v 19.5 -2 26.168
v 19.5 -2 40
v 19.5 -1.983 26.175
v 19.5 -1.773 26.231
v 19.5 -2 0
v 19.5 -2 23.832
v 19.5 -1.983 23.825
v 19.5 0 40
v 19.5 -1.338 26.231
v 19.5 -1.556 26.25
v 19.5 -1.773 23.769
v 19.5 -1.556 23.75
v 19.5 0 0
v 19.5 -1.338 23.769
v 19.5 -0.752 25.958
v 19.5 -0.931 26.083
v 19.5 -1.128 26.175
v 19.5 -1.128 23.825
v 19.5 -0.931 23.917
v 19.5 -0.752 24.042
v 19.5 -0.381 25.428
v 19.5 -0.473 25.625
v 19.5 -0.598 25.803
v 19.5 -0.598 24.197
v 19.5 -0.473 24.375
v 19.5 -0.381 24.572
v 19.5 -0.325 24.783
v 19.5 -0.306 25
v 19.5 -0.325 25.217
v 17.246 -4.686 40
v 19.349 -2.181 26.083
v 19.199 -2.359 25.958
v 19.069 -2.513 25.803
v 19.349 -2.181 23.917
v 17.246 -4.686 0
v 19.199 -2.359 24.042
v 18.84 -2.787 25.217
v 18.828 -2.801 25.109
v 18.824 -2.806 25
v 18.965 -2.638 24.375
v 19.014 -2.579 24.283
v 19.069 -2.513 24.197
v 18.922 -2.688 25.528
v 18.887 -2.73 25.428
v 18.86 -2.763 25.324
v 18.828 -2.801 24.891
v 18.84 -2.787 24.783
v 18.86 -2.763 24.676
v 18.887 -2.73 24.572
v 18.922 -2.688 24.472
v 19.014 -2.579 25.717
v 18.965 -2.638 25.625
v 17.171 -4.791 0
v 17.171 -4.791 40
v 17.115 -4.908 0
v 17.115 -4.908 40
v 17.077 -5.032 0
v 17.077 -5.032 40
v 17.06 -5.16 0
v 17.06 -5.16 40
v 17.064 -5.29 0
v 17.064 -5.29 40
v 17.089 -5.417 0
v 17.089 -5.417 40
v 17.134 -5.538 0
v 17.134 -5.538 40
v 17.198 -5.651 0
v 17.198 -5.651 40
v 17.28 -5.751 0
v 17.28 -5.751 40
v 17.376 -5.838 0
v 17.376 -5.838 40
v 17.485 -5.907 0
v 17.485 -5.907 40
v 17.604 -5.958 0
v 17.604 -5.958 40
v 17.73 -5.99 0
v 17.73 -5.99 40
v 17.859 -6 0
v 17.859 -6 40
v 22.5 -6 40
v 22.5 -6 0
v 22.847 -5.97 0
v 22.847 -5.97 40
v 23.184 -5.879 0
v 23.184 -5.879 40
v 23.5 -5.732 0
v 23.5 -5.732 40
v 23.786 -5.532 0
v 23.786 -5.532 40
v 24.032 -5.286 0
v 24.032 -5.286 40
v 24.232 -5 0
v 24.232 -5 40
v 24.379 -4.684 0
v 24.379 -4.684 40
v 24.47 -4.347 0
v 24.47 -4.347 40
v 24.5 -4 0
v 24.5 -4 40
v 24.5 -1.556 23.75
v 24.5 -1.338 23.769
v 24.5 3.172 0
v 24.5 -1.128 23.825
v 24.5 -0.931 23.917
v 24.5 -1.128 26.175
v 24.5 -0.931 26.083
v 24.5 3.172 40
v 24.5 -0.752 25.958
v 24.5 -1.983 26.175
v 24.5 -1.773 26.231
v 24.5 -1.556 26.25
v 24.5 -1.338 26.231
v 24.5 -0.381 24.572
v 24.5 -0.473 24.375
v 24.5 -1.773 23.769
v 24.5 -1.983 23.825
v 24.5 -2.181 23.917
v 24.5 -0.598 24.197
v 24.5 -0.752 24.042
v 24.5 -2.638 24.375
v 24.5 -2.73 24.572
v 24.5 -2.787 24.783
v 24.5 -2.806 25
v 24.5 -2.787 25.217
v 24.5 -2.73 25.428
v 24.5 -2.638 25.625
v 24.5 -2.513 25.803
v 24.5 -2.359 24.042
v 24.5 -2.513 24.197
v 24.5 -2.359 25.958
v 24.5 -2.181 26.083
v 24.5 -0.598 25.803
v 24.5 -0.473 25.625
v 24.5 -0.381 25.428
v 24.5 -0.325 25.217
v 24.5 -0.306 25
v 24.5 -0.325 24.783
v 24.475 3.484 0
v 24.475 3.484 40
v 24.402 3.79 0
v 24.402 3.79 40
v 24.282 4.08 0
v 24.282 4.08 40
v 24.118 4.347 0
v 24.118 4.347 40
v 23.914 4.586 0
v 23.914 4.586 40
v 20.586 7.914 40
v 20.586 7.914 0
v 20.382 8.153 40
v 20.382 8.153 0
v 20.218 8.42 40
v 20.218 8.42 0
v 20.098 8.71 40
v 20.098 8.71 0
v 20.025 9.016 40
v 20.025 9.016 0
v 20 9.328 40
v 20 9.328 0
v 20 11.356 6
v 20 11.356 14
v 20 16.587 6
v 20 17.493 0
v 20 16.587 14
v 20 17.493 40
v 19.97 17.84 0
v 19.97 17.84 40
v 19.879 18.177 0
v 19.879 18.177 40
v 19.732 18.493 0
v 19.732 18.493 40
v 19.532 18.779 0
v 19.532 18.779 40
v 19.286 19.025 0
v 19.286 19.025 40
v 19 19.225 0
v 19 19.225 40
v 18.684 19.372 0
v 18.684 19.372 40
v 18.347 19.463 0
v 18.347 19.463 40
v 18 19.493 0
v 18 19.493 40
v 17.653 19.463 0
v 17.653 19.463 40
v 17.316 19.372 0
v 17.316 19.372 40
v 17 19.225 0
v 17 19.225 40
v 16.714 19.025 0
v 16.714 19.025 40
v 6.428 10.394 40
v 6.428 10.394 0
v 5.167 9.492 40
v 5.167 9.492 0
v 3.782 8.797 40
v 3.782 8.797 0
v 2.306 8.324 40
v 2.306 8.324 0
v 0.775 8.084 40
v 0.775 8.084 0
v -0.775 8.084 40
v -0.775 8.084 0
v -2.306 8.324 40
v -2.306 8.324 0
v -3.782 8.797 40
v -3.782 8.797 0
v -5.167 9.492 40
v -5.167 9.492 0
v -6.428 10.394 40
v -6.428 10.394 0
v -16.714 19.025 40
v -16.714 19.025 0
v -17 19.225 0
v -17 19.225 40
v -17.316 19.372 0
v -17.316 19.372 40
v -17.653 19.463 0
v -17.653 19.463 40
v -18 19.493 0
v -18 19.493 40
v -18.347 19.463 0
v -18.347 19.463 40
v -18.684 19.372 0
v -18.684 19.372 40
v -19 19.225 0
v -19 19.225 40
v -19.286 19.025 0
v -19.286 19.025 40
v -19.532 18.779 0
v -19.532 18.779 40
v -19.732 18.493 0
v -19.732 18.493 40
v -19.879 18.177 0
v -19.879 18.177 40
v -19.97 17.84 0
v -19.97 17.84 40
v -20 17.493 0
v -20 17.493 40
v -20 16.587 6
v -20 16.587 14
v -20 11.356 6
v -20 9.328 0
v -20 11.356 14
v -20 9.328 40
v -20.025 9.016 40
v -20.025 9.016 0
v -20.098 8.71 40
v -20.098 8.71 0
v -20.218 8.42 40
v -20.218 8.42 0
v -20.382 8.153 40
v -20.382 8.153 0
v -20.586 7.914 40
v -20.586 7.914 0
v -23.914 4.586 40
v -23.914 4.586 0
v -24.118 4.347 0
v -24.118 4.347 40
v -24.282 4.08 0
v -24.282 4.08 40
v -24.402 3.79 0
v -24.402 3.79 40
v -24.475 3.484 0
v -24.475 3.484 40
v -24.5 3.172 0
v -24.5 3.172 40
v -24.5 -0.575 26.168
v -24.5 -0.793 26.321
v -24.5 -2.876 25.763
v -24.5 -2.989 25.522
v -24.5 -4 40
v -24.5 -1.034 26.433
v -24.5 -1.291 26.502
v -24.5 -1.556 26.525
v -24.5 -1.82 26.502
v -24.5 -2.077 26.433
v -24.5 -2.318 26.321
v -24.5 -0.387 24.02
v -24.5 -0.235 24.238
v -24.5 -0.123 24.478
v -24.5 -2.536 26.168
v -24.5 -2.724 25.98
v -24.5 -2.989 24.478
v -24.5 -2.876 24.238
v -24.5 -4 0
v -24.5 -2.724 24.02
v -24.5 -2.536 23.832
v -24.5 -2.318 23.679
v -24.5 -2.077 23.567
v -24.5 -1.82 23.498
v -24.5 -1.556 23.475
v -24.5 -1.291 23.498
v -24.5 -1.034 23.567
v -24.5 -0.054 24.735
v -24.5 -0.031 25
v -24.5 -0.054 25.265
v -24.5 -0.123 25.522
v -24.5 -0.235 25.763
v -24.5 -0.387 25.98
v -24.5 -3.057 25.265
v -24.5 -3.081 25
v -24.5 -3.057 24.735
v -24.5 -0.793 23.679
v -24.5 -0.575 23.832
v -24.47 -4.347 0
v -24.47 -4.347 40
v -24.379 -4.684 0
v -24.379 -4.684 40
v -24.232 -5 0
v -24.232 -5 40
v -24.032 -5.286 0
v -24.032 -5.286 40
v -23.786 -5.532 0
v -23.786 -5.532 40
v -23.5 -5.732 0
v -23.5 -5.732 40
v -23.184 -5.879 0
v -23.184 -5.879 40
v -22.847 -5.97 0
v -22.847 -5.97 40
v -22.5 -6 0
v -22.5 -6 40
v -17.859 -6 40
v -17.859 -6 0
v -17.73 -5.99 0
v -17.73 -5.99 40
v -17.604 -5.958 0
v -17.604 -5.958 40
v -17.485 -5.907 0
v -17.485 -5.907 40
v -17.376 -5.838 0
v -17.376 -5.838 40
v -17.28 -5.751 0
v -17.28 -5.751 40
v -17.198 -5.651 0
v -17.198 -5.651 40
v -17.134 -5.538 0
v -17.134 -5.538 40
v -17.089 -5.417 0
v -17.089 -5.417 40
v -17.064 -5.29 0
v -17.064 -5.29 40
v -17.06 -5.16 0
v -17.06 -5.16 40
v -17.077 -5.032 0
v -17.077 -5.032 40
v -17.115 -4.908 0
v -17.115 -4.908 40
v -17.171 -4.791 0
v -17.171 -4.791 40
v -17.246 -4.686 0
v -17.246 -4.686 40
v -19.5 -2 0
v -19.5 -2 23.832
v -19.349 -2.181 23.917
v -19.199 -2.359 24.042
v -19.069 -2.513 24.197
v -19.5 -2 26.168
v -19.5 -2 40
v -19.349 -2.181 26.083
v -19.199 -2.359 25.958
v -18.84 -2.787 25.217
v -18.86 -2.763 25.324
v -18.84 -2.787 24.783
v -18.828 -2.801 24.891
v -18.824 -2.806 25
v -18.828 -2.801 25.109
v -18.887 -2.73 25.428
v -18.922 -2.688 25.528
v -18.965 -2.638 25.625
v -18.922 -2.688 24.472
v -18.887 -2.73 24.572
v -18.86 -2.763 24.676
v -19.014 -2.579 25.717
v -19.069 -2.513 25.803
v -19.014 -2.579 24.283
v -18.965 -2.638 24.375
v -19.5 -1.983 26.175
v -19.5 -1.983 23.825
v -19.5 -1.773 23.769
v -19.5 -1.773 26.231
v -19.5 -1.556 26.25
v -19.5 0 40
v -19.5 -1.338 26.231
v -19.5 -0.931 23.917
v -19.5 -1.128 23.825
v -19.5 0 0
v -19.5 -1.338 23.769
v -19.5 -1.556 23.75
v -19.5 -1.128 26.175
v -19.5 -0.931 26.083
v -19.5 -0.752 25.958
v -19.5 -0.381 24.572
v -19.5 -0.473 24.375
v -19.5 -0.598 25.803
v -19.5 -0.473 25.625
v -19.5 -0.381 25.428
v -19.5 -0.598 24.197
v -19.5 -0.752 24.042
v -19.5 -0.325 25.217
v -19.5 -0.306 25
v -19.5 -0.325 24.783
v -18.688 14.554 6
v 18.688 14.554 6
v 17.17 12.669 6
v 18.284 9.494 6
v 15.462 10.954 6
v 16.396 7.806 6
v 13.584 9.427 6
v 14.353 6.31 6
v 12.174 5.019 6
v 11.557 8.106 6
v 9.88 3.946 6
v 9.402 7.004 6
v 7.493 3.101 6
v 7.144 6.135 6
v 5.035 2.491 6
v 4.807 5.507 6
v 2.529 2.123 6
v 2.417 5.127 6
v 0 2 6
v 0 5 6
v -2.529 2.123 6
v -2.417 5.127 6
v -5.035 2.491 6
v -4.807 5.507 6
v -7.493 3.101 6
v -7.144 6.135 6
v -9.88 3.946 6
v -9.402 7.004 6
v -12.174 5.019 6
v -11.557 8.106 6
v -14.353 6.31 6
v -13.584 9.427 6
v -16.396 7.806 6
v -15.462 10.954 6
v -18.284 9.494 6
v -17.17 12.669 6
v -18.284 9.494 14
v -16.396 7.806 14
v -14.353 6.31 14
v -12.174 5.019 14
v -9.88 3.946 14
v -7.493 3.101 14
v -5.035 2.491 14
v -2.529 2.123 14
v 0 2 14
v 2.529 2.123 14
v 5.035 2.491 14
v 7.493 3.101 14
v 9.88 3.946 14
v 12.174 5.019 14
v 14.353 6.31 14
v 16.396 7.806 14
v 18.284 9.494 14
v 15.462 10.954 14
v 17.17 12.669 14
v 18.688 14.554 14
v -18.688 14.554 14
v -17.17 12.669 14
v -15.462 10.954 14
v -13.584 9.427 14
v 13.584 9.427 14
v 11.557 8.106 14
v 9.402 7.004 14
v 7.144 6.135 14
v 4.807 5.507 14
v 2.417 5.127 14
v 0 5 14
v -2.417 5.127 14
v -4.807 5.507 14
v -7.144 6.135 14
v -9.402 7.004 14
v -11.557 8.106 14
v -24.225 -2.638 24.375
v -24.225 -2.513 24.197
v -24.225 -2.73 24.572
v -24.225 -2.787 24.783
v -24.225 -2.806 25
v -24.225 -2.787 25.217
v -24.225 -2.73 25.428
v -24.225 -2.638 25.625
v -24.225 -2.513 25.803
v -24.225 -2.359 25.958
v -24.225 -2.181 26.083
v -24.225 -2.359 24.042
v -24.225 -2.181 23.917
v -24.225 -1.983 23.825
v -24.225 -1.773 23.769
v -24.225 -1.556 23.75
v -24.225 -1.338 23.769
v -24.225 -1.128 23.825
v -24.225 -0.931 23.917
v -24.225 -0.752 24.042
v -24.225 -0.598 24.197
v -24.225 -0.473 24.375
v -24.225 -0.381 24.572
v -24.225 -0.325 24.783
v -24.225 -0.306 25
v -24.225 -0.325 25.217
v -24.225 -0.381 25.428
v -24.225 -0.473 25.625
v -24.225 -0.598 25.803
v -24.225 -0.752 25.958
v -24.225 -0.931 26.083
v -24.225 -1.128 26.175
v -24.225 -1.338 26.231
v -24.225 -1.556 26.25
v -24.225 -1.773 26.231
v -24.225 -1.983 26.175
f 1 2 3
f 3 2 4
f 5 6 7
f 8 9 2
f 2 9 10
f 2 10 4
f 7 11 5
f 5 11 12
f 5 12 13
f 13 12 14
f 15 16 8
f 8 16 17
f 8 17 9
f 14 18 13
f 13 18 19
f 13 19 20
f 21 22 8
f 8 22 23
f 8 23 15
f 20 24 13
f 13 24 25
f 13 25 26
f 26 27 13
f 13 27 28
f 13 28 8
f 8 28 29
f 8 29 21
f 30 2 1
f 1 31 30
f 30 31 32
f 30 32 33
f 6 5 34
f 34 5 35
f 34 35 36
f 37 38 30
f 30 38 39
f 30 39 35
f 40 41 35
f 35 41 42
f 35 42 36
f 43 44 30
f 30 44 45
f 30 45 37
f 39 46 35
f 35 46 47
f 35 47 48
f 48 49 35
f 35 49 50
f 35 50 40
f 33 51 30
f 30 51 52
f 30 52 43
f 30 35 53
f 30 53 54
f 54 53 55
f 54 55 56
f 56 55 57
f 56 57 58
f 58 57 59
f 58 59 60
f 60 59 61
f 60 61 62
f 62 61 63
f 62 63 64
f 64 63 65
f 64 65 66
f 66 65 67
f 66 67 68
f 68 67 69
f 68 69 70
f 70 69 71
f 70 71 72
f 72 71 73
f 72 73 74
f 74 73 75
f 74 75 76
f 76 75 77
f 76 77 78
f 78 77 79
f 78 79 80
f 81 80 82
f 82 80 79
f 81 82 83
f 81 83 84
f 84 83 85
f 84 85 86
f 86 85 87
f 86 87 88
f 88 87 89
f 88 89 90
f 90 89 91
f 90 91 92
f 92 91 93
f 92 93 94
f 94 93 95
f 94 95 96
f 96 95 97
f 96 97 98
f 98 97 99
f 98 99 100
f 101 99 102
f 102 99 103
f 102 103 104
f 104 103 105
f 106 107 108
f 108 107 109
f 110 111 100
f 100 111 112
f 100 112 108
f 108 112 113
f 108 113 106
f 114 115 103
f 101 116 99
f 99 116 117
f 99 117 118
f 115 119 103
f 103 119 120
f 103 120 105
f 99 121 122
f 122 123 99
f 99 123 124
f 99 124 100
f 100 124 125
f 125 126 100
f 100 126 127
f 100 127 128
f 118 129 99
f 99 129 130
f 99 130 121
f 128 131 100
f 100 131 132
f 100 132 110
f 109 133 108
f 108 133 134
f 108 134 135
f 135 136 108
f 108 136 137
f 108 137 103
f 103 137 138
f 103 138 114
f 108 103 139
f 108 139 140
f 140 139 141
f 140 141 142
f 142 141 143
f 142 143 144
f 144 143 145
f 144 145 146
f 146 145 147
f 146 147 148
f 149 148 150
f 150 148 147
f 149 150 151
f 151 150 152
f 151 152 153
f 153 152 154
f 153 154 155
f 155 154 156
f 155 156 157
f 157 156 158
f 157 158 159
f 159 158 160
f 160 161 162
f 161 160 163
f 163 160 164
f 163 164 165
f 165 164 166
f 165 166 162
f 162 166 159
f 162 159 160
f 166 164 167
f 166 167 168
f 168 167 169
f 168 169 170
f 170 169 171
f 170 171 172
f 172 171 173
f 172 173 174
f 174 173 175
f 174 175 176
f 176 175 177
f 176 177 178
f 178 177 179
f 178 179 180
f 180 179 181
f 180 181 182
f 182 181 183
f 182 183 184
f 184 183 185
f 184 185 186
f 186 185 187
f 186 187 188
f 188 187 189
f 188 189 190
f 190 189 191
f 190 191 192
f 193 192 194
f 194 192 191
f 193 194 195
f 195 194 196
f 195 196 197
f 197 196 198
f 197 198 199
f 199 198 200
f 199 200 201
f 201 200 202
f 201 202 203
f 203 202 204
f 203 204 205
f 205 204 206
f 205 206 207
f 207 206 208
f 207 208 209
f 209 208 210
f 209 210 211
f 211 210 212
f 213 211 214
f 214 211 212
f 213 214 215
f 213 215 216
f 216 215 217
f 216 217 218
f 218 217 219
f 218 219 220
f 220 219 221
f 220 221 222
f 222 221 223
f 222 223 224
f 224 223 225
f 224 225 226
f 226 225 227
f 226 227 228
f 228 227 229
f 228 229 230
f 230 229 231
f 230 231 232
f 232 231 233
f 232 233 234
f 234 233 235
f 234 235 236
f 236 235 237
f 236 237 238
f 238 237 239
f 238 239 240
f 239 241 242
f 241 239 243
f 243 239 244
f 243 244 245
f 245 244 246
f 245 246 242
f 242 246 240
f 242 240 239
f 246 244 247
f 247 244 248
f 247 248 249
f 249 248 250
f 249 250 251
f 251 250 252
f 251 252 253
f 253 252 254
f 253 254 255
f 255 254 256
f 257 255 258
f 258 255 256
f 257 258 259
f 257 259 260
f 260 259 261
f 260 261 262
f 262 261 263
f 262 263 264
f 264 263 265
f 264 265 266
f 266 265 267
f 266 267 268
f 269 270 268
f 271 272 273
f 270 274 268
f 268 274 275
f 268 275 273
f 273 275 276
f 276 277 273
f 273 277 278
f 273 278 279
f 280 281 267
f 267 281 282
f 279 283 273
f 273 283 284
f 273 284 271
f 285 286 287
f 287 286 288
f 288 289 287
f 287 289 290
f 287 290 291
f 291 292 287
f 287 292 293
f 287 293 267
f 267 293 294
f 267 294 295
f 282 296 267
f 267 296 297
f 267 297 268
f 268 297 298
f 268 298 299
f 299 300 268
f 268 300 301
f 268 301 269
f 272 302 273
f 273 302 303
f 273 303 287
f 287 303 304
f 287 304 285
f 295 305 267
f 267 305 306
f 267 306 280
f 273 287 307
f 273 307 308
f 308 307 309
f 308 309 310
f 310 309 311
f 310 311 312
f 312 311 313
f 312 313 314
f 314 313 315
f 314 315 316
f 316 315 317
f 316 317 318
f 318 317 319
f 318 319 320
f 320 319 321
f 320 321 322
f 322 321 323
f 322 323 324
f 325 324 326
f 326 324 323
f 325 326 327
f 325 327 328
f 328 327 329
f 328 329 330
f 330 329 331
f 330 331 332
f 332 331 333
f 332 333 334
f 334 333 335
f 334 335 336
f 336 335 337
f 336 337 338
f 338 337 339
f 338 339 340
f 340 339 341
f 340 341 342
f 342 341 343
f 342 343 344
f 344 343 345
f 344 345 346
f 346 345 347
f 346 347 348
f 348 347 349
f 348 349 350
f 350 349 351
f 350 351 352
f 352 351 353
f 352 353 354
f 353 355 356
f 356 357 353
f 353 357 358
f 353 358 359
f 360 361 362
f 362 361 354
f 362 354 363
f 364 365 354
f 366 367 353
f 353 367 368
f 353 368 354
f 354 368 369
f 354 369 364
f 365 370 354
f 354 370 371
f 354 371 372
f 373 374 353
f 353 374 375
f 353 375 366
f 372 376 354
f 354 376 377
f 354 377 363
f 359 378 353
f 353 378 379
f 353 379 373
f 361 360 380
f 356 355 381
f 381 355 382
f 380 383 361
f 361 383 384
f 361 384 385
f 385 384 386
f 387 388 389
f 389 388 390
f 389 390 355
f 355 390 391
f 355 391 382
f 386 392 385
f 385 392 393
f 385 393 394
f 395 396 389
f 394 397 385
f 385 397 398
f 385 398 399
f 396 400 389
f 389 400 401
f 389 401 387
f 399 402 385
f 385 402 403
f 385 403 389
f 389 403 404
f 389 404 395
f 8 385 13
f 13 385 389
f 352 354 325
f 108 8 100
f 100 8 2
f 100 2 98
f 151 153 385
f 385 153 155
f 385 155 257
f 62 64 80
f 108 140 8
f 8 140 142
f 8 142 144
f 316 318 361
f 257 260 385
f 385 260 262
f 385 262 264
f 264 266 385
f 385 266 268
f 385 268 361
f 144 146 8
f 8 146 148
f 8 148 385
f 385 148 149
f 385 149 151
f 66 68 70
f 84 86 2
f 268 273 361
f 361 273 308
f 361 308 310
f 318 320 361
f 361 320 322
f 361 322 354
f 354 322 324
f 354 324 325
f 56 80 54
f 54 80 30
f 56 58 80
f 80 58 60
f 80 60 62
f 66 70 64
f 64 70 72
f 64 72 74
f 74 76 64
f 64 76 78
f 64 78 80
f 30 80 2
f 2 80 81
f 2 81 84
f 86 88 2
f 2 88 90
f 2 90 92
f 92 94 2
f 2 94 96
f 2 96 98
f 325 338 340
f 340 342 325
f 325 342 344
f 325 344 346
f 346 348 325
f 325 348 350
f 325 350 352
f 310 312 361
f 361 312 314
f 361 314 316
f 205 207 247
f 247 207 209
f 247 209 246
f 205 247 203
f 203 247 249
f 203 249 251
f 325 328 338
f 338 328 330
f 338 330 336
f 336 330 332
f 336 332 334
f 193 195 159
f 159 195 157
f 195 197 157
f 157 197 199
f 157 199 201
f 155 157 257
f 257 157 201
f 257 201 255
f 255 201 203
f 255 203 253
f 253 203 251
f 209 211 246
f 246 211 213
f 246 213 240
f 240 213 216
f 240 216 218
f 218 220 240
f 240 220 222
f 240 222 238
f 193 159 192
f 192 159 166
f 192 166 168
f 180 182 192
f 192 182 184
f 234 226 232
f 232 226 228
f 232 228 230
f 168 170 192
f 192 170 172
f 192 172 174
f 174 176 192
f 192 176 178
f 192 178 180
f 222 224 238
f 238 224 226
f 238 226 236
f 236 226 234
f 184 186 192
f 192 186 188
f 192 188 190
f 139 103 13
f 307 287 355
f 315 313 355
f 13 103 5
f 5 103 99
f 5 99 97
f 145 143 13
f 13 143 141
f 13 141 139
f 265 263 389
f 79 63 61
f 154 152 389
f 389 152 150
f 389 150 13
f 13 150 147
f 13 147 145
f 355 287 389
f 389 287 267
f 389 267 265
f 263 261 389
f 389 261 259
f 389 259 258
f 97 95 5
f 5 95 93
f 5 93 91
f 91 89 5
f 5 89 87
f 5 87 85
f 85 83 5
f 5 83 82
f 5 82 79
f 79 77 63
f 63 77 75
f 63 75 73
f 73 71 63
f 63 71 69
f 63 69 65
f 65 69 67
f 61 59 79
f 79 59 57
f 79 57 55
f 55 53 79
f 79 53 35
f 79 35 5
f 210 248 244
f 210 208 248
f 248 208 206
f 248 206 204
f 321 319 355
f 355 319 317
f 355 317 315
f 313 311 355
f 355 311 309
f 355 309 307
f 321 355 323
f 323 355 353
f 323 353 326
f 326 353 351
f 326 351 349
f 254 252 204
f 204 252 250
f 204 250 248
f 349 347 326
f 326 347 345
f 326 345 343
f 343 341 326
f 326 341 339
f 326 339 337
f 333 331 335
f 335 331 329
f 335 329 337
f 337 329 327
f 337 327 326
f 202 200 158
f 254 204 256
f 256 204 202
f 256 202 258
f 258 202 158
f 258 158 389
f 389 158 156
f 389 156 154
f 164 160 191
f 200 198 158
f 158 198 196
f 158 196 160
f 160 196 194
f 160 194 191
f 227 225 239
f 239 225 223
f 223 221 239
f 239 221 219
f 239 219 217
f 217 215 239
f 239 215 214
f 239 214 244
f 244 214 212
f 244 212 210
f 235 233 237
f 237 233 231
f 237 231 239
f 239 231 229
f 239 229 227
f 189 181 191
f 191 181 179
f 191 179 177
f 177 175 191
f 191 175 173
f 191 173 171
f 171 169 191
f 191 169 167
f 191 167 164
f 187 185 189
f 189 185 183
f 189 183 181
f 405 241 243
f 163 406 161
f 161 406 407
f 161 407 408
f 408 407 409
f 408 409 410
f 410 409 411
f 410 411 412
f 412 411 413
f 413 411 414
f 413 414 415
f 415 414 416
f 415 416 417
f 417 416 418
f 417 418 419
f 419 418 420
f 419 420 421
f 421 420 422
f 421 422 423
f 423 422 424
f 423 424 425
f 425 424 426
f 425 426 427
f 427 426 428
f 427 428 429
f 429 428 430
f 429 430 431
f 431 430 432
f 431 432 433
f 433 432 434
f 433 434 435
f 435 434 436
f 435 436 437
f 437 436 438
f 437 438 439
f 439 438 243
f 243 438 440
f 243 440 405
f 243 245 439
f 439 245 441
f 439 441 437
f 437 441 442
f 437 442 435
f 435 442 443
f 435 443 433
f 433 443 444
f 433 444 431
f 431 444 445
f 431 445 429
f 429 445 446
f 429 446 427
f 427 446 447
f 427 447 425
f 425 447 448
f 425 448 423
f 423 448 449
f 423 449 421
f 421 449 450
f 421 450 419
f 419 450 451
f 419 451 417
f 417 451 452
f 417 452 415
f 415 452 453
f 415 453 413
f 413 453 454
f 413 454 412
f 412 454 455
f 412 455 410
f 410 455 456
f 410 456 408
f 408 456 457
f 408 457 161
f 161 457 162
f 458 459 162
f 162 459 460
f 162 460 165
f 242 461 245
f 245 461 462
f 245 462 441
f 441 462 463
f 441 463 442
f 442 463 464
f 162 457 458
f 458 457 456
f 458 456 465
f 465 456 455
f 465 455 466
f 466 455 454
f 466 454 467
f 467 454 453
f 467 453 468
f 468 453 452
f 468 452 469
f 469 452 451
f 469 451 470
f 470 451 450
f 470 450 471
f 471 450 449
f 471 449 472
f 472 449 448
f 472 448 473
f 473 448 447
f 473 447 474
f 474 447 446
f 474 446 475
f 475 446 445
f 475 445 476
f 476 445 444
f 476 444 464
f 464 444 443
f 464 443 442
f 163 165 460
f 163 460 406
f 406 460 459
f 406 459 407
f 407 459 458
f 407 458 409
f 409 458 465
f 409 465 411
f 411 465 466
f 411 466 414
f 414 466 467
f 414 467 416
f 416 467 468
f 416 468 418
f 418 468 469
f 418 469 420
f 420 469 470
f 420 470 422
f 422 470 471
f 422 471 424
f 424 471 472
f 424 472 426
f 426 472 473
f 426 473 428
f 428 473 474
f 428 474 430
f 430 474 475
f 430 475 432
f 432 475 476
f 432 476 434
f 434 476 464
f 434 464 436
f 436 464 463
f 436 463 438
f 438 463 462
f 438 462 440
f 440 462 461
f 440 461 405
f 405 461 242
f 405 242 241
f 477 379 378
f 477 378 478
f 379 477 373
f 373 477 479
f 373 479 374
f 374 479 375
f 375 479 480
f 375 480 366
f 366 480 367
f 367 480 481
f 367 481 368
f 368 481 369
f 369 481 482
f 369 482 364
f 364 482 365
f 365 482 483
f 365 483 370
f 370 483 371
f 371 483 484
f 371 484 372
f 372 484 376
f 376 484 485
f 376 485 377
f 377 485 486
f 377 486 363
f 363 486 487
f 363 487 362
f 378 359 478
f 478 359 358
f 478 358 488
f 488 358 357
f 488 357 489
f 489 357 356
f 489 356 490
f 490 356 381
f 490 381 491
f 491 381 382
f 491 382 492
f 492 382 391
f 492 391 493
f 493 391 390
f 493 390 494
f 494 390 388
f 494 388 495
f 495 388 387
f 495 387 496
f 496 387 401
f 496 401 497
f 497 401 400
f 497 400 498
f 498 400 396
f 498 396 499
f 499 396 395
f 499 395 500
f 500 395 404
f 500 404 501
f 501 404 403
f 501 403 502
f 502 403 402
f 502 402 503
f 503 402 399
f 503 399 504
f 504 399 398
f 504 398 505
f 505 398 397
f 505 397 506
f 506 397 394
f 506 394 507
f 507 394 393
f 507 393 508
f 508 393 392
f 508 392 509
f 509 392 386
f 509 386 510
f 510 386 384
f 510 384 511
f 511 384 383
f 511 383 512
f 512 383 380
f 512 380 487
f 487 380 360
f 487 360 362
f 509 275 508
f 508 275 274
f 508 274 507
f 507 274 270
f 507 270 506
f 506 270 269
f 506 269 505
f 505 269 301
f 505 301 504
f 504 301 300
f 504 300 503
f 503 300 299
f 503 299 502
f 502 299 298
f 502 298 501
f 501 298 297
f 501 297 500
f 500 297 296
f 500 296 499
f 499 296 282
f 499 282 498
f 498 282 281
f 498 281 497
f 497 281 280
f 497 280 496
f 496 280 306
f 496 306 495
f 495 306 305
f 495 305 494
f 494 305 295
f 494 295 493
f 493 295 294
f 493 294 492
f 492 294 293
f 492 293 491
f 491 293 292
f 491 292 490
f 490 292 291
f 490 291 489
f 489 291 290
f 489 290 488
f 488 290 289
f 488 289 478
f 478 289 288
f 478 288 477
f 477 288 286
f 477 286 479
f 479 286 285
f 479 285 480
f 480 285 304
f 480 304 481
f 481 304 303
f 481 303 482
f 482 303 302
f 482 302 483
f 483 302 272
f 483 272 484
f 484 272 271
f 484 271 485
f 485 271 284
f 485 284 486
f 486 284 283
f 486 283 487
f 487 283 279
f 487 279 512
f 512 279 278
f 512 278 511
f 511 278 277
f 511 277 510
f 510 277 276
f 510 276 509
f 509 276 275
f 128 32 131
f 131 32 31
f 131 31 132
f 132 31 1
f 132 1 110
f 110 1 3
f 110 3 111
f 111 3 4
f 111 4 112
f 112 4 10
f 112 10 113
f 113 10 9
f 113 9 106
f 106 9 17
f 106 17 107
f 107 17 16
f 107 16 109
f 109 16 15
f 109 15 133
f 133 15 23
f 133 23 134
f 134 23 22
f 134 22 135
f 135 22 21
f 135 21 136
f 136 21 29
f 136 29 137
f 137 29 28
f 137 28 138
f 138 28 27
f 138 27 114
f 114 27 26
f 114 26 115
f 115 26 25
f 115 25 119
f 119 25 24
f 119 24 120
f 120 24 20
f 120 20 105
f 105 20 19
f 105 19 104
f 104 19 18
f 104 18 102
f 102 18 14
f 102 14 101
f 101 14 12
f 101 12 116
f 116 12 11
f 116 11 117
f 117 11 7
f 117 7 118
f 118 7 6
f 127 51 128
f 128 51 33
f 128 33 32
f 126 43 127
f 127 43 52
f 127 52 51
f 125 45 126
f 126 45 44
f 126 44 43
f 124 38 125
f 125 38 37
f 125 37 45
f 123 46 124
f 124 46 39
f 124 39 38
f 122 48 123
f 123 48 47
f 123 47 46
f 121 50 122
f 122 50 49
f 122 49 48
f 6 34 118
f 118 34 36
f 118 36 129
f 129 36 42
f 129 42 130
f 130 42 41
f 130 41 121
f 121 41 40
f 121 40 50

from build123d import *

# Parameters (mm, degrees)
BOSS_EXTRUDE1_DEPTH             = 40
SKETCH2_W                       = 8
SKETCH2_H                       = 3
M3X0_5_TAPPED_HOLE1_D           = 2.5
M3X0_5_TAPPED_HOLE1_CSINK_D     = 3.05
M3X0_5_TAPPED_HOLE1_CSINK_ANGLE = 90


with BuildPart() as part:
    # Sketch1 → Boss-Extrude1 (new body)
    with BuildSketch(Plane.XY):
        with BuildLine():
            Line((6.427876097, 10.393628462), (16.714424781, 19.025067669))
            ThreePointArc((16.714424781, 19.025067669), (18.845236523, 19.305594357), (20, 17.492978783))
            Line((20, 17.492978783), (20, 9.328427125))
            ThreePointArc((20, 9.328427125), (20.152240935, 8.56306026), (20.585786438, 7.914213562))
            Line((20.585786438, 7.914213562), (23.914213562, 4.585786438))
            ThreePointArc((23.914213562, 4.585786438), (24.347759065, 3.93693974), (24.5, 3.171572875))
            Line((24.5, 3.171572875), (24.5, -4))
            ThreePointArc((24.5, -4), (23.914213562, -5.414213562), (22.5, -6))
            Line((22.5, -6), (17.859207012, -6))
            ThreePointArc((17.859207012, -6), (17.134160782, -5.538094609), (17.246371457, -4.685769912))
            Line((17.246371457, -4.685769912), (19.5, -2))
            Line((19.5, -2), (19.5, 0))
            Line((19.5, 0), (-19.5, 0))
            Line((-19.5, 0), (-19.5, -2))
            Line((-19.5, -2), (-17.246371457, -4.685769912))
            ThreePointArc((-17.246371457, -4.685769912), (-17.134160782, -5.538094609), (-17.859207012, -6))
            Line((-17.859207012, -6), (-22.5, -6))
            ThreePointArc((-22.5, -6), (-23.914213562, -5.414213562), (-24.5, -4))
            Line((-24.5, -4), (-24.5, 3.171572875))
            ThreePointArc((-24.5, 3.171572875), (-24.347759065, 3.93693974), (-23.914213562, 4.585786438))
            Line((-23.914213562, 4.585786438), (-20.585786438, 7.914213562))
            ThreePointArc((-20.585786438, 7.914213562), (-20.152240935, 8.56306026), (-20, 9.328427125))
            Line((-20, 9.328427125), (-20, 17.492978783))
            ThreePointArc((-20, 17.492978783), (-18.845236523, 19.305594357), (-16.714424781, 19.025067669))
            Line((-16.714424781, 19.025067669), (-6.427876097, 10.393628462))
            ThreePointArc((-6.427876097, 10.393628462), (0, 8.054072893), (6.427876097, 10.393628462))
        make_face()
    extrude(amount=BOSS_EXTRUDE1_DEPTH)

    # Sketch2 → Cut-Revolve1 (revolve, cut)
    with BuildSketch(Plane(origin=(0, 0, 0), x_dir=(0, 0, -1), z_dir=(1, 0, 0))):
        with Locations((-10, 3.5)):
            Rectangle(SKETCH2_W, SKETCH2_H)
        with Locations((-50, 3.5)):
            Rectangle(SKETCH2_W, SKETCH2_H)
        with Locations((-90, 3.5)):
            Rectangle(SKETCH2_W, SKETCH2_H)
    revolve(axis=Axis((0, 28.054072893, 29.353848425), (0, 0, -1)), mode=Mode.SUBTRACT)

    # M3x0.5 Tapped Hole1 (through all)
    with Locations(Plane.ZY.offset(24.5)):
        with Locations((25, -1.555540573), (75, -1.555540573)):
            CounterSinkHole(M3X0_5_TAPPED_HOLE1_D / 2, M3X0_5_TAPPED_HOLE1_CSINK_D / 2, counter_sink_angle=M3X0_5_TAPPED_HOLE1_CSINK_ANGLE)


solid = part.part
